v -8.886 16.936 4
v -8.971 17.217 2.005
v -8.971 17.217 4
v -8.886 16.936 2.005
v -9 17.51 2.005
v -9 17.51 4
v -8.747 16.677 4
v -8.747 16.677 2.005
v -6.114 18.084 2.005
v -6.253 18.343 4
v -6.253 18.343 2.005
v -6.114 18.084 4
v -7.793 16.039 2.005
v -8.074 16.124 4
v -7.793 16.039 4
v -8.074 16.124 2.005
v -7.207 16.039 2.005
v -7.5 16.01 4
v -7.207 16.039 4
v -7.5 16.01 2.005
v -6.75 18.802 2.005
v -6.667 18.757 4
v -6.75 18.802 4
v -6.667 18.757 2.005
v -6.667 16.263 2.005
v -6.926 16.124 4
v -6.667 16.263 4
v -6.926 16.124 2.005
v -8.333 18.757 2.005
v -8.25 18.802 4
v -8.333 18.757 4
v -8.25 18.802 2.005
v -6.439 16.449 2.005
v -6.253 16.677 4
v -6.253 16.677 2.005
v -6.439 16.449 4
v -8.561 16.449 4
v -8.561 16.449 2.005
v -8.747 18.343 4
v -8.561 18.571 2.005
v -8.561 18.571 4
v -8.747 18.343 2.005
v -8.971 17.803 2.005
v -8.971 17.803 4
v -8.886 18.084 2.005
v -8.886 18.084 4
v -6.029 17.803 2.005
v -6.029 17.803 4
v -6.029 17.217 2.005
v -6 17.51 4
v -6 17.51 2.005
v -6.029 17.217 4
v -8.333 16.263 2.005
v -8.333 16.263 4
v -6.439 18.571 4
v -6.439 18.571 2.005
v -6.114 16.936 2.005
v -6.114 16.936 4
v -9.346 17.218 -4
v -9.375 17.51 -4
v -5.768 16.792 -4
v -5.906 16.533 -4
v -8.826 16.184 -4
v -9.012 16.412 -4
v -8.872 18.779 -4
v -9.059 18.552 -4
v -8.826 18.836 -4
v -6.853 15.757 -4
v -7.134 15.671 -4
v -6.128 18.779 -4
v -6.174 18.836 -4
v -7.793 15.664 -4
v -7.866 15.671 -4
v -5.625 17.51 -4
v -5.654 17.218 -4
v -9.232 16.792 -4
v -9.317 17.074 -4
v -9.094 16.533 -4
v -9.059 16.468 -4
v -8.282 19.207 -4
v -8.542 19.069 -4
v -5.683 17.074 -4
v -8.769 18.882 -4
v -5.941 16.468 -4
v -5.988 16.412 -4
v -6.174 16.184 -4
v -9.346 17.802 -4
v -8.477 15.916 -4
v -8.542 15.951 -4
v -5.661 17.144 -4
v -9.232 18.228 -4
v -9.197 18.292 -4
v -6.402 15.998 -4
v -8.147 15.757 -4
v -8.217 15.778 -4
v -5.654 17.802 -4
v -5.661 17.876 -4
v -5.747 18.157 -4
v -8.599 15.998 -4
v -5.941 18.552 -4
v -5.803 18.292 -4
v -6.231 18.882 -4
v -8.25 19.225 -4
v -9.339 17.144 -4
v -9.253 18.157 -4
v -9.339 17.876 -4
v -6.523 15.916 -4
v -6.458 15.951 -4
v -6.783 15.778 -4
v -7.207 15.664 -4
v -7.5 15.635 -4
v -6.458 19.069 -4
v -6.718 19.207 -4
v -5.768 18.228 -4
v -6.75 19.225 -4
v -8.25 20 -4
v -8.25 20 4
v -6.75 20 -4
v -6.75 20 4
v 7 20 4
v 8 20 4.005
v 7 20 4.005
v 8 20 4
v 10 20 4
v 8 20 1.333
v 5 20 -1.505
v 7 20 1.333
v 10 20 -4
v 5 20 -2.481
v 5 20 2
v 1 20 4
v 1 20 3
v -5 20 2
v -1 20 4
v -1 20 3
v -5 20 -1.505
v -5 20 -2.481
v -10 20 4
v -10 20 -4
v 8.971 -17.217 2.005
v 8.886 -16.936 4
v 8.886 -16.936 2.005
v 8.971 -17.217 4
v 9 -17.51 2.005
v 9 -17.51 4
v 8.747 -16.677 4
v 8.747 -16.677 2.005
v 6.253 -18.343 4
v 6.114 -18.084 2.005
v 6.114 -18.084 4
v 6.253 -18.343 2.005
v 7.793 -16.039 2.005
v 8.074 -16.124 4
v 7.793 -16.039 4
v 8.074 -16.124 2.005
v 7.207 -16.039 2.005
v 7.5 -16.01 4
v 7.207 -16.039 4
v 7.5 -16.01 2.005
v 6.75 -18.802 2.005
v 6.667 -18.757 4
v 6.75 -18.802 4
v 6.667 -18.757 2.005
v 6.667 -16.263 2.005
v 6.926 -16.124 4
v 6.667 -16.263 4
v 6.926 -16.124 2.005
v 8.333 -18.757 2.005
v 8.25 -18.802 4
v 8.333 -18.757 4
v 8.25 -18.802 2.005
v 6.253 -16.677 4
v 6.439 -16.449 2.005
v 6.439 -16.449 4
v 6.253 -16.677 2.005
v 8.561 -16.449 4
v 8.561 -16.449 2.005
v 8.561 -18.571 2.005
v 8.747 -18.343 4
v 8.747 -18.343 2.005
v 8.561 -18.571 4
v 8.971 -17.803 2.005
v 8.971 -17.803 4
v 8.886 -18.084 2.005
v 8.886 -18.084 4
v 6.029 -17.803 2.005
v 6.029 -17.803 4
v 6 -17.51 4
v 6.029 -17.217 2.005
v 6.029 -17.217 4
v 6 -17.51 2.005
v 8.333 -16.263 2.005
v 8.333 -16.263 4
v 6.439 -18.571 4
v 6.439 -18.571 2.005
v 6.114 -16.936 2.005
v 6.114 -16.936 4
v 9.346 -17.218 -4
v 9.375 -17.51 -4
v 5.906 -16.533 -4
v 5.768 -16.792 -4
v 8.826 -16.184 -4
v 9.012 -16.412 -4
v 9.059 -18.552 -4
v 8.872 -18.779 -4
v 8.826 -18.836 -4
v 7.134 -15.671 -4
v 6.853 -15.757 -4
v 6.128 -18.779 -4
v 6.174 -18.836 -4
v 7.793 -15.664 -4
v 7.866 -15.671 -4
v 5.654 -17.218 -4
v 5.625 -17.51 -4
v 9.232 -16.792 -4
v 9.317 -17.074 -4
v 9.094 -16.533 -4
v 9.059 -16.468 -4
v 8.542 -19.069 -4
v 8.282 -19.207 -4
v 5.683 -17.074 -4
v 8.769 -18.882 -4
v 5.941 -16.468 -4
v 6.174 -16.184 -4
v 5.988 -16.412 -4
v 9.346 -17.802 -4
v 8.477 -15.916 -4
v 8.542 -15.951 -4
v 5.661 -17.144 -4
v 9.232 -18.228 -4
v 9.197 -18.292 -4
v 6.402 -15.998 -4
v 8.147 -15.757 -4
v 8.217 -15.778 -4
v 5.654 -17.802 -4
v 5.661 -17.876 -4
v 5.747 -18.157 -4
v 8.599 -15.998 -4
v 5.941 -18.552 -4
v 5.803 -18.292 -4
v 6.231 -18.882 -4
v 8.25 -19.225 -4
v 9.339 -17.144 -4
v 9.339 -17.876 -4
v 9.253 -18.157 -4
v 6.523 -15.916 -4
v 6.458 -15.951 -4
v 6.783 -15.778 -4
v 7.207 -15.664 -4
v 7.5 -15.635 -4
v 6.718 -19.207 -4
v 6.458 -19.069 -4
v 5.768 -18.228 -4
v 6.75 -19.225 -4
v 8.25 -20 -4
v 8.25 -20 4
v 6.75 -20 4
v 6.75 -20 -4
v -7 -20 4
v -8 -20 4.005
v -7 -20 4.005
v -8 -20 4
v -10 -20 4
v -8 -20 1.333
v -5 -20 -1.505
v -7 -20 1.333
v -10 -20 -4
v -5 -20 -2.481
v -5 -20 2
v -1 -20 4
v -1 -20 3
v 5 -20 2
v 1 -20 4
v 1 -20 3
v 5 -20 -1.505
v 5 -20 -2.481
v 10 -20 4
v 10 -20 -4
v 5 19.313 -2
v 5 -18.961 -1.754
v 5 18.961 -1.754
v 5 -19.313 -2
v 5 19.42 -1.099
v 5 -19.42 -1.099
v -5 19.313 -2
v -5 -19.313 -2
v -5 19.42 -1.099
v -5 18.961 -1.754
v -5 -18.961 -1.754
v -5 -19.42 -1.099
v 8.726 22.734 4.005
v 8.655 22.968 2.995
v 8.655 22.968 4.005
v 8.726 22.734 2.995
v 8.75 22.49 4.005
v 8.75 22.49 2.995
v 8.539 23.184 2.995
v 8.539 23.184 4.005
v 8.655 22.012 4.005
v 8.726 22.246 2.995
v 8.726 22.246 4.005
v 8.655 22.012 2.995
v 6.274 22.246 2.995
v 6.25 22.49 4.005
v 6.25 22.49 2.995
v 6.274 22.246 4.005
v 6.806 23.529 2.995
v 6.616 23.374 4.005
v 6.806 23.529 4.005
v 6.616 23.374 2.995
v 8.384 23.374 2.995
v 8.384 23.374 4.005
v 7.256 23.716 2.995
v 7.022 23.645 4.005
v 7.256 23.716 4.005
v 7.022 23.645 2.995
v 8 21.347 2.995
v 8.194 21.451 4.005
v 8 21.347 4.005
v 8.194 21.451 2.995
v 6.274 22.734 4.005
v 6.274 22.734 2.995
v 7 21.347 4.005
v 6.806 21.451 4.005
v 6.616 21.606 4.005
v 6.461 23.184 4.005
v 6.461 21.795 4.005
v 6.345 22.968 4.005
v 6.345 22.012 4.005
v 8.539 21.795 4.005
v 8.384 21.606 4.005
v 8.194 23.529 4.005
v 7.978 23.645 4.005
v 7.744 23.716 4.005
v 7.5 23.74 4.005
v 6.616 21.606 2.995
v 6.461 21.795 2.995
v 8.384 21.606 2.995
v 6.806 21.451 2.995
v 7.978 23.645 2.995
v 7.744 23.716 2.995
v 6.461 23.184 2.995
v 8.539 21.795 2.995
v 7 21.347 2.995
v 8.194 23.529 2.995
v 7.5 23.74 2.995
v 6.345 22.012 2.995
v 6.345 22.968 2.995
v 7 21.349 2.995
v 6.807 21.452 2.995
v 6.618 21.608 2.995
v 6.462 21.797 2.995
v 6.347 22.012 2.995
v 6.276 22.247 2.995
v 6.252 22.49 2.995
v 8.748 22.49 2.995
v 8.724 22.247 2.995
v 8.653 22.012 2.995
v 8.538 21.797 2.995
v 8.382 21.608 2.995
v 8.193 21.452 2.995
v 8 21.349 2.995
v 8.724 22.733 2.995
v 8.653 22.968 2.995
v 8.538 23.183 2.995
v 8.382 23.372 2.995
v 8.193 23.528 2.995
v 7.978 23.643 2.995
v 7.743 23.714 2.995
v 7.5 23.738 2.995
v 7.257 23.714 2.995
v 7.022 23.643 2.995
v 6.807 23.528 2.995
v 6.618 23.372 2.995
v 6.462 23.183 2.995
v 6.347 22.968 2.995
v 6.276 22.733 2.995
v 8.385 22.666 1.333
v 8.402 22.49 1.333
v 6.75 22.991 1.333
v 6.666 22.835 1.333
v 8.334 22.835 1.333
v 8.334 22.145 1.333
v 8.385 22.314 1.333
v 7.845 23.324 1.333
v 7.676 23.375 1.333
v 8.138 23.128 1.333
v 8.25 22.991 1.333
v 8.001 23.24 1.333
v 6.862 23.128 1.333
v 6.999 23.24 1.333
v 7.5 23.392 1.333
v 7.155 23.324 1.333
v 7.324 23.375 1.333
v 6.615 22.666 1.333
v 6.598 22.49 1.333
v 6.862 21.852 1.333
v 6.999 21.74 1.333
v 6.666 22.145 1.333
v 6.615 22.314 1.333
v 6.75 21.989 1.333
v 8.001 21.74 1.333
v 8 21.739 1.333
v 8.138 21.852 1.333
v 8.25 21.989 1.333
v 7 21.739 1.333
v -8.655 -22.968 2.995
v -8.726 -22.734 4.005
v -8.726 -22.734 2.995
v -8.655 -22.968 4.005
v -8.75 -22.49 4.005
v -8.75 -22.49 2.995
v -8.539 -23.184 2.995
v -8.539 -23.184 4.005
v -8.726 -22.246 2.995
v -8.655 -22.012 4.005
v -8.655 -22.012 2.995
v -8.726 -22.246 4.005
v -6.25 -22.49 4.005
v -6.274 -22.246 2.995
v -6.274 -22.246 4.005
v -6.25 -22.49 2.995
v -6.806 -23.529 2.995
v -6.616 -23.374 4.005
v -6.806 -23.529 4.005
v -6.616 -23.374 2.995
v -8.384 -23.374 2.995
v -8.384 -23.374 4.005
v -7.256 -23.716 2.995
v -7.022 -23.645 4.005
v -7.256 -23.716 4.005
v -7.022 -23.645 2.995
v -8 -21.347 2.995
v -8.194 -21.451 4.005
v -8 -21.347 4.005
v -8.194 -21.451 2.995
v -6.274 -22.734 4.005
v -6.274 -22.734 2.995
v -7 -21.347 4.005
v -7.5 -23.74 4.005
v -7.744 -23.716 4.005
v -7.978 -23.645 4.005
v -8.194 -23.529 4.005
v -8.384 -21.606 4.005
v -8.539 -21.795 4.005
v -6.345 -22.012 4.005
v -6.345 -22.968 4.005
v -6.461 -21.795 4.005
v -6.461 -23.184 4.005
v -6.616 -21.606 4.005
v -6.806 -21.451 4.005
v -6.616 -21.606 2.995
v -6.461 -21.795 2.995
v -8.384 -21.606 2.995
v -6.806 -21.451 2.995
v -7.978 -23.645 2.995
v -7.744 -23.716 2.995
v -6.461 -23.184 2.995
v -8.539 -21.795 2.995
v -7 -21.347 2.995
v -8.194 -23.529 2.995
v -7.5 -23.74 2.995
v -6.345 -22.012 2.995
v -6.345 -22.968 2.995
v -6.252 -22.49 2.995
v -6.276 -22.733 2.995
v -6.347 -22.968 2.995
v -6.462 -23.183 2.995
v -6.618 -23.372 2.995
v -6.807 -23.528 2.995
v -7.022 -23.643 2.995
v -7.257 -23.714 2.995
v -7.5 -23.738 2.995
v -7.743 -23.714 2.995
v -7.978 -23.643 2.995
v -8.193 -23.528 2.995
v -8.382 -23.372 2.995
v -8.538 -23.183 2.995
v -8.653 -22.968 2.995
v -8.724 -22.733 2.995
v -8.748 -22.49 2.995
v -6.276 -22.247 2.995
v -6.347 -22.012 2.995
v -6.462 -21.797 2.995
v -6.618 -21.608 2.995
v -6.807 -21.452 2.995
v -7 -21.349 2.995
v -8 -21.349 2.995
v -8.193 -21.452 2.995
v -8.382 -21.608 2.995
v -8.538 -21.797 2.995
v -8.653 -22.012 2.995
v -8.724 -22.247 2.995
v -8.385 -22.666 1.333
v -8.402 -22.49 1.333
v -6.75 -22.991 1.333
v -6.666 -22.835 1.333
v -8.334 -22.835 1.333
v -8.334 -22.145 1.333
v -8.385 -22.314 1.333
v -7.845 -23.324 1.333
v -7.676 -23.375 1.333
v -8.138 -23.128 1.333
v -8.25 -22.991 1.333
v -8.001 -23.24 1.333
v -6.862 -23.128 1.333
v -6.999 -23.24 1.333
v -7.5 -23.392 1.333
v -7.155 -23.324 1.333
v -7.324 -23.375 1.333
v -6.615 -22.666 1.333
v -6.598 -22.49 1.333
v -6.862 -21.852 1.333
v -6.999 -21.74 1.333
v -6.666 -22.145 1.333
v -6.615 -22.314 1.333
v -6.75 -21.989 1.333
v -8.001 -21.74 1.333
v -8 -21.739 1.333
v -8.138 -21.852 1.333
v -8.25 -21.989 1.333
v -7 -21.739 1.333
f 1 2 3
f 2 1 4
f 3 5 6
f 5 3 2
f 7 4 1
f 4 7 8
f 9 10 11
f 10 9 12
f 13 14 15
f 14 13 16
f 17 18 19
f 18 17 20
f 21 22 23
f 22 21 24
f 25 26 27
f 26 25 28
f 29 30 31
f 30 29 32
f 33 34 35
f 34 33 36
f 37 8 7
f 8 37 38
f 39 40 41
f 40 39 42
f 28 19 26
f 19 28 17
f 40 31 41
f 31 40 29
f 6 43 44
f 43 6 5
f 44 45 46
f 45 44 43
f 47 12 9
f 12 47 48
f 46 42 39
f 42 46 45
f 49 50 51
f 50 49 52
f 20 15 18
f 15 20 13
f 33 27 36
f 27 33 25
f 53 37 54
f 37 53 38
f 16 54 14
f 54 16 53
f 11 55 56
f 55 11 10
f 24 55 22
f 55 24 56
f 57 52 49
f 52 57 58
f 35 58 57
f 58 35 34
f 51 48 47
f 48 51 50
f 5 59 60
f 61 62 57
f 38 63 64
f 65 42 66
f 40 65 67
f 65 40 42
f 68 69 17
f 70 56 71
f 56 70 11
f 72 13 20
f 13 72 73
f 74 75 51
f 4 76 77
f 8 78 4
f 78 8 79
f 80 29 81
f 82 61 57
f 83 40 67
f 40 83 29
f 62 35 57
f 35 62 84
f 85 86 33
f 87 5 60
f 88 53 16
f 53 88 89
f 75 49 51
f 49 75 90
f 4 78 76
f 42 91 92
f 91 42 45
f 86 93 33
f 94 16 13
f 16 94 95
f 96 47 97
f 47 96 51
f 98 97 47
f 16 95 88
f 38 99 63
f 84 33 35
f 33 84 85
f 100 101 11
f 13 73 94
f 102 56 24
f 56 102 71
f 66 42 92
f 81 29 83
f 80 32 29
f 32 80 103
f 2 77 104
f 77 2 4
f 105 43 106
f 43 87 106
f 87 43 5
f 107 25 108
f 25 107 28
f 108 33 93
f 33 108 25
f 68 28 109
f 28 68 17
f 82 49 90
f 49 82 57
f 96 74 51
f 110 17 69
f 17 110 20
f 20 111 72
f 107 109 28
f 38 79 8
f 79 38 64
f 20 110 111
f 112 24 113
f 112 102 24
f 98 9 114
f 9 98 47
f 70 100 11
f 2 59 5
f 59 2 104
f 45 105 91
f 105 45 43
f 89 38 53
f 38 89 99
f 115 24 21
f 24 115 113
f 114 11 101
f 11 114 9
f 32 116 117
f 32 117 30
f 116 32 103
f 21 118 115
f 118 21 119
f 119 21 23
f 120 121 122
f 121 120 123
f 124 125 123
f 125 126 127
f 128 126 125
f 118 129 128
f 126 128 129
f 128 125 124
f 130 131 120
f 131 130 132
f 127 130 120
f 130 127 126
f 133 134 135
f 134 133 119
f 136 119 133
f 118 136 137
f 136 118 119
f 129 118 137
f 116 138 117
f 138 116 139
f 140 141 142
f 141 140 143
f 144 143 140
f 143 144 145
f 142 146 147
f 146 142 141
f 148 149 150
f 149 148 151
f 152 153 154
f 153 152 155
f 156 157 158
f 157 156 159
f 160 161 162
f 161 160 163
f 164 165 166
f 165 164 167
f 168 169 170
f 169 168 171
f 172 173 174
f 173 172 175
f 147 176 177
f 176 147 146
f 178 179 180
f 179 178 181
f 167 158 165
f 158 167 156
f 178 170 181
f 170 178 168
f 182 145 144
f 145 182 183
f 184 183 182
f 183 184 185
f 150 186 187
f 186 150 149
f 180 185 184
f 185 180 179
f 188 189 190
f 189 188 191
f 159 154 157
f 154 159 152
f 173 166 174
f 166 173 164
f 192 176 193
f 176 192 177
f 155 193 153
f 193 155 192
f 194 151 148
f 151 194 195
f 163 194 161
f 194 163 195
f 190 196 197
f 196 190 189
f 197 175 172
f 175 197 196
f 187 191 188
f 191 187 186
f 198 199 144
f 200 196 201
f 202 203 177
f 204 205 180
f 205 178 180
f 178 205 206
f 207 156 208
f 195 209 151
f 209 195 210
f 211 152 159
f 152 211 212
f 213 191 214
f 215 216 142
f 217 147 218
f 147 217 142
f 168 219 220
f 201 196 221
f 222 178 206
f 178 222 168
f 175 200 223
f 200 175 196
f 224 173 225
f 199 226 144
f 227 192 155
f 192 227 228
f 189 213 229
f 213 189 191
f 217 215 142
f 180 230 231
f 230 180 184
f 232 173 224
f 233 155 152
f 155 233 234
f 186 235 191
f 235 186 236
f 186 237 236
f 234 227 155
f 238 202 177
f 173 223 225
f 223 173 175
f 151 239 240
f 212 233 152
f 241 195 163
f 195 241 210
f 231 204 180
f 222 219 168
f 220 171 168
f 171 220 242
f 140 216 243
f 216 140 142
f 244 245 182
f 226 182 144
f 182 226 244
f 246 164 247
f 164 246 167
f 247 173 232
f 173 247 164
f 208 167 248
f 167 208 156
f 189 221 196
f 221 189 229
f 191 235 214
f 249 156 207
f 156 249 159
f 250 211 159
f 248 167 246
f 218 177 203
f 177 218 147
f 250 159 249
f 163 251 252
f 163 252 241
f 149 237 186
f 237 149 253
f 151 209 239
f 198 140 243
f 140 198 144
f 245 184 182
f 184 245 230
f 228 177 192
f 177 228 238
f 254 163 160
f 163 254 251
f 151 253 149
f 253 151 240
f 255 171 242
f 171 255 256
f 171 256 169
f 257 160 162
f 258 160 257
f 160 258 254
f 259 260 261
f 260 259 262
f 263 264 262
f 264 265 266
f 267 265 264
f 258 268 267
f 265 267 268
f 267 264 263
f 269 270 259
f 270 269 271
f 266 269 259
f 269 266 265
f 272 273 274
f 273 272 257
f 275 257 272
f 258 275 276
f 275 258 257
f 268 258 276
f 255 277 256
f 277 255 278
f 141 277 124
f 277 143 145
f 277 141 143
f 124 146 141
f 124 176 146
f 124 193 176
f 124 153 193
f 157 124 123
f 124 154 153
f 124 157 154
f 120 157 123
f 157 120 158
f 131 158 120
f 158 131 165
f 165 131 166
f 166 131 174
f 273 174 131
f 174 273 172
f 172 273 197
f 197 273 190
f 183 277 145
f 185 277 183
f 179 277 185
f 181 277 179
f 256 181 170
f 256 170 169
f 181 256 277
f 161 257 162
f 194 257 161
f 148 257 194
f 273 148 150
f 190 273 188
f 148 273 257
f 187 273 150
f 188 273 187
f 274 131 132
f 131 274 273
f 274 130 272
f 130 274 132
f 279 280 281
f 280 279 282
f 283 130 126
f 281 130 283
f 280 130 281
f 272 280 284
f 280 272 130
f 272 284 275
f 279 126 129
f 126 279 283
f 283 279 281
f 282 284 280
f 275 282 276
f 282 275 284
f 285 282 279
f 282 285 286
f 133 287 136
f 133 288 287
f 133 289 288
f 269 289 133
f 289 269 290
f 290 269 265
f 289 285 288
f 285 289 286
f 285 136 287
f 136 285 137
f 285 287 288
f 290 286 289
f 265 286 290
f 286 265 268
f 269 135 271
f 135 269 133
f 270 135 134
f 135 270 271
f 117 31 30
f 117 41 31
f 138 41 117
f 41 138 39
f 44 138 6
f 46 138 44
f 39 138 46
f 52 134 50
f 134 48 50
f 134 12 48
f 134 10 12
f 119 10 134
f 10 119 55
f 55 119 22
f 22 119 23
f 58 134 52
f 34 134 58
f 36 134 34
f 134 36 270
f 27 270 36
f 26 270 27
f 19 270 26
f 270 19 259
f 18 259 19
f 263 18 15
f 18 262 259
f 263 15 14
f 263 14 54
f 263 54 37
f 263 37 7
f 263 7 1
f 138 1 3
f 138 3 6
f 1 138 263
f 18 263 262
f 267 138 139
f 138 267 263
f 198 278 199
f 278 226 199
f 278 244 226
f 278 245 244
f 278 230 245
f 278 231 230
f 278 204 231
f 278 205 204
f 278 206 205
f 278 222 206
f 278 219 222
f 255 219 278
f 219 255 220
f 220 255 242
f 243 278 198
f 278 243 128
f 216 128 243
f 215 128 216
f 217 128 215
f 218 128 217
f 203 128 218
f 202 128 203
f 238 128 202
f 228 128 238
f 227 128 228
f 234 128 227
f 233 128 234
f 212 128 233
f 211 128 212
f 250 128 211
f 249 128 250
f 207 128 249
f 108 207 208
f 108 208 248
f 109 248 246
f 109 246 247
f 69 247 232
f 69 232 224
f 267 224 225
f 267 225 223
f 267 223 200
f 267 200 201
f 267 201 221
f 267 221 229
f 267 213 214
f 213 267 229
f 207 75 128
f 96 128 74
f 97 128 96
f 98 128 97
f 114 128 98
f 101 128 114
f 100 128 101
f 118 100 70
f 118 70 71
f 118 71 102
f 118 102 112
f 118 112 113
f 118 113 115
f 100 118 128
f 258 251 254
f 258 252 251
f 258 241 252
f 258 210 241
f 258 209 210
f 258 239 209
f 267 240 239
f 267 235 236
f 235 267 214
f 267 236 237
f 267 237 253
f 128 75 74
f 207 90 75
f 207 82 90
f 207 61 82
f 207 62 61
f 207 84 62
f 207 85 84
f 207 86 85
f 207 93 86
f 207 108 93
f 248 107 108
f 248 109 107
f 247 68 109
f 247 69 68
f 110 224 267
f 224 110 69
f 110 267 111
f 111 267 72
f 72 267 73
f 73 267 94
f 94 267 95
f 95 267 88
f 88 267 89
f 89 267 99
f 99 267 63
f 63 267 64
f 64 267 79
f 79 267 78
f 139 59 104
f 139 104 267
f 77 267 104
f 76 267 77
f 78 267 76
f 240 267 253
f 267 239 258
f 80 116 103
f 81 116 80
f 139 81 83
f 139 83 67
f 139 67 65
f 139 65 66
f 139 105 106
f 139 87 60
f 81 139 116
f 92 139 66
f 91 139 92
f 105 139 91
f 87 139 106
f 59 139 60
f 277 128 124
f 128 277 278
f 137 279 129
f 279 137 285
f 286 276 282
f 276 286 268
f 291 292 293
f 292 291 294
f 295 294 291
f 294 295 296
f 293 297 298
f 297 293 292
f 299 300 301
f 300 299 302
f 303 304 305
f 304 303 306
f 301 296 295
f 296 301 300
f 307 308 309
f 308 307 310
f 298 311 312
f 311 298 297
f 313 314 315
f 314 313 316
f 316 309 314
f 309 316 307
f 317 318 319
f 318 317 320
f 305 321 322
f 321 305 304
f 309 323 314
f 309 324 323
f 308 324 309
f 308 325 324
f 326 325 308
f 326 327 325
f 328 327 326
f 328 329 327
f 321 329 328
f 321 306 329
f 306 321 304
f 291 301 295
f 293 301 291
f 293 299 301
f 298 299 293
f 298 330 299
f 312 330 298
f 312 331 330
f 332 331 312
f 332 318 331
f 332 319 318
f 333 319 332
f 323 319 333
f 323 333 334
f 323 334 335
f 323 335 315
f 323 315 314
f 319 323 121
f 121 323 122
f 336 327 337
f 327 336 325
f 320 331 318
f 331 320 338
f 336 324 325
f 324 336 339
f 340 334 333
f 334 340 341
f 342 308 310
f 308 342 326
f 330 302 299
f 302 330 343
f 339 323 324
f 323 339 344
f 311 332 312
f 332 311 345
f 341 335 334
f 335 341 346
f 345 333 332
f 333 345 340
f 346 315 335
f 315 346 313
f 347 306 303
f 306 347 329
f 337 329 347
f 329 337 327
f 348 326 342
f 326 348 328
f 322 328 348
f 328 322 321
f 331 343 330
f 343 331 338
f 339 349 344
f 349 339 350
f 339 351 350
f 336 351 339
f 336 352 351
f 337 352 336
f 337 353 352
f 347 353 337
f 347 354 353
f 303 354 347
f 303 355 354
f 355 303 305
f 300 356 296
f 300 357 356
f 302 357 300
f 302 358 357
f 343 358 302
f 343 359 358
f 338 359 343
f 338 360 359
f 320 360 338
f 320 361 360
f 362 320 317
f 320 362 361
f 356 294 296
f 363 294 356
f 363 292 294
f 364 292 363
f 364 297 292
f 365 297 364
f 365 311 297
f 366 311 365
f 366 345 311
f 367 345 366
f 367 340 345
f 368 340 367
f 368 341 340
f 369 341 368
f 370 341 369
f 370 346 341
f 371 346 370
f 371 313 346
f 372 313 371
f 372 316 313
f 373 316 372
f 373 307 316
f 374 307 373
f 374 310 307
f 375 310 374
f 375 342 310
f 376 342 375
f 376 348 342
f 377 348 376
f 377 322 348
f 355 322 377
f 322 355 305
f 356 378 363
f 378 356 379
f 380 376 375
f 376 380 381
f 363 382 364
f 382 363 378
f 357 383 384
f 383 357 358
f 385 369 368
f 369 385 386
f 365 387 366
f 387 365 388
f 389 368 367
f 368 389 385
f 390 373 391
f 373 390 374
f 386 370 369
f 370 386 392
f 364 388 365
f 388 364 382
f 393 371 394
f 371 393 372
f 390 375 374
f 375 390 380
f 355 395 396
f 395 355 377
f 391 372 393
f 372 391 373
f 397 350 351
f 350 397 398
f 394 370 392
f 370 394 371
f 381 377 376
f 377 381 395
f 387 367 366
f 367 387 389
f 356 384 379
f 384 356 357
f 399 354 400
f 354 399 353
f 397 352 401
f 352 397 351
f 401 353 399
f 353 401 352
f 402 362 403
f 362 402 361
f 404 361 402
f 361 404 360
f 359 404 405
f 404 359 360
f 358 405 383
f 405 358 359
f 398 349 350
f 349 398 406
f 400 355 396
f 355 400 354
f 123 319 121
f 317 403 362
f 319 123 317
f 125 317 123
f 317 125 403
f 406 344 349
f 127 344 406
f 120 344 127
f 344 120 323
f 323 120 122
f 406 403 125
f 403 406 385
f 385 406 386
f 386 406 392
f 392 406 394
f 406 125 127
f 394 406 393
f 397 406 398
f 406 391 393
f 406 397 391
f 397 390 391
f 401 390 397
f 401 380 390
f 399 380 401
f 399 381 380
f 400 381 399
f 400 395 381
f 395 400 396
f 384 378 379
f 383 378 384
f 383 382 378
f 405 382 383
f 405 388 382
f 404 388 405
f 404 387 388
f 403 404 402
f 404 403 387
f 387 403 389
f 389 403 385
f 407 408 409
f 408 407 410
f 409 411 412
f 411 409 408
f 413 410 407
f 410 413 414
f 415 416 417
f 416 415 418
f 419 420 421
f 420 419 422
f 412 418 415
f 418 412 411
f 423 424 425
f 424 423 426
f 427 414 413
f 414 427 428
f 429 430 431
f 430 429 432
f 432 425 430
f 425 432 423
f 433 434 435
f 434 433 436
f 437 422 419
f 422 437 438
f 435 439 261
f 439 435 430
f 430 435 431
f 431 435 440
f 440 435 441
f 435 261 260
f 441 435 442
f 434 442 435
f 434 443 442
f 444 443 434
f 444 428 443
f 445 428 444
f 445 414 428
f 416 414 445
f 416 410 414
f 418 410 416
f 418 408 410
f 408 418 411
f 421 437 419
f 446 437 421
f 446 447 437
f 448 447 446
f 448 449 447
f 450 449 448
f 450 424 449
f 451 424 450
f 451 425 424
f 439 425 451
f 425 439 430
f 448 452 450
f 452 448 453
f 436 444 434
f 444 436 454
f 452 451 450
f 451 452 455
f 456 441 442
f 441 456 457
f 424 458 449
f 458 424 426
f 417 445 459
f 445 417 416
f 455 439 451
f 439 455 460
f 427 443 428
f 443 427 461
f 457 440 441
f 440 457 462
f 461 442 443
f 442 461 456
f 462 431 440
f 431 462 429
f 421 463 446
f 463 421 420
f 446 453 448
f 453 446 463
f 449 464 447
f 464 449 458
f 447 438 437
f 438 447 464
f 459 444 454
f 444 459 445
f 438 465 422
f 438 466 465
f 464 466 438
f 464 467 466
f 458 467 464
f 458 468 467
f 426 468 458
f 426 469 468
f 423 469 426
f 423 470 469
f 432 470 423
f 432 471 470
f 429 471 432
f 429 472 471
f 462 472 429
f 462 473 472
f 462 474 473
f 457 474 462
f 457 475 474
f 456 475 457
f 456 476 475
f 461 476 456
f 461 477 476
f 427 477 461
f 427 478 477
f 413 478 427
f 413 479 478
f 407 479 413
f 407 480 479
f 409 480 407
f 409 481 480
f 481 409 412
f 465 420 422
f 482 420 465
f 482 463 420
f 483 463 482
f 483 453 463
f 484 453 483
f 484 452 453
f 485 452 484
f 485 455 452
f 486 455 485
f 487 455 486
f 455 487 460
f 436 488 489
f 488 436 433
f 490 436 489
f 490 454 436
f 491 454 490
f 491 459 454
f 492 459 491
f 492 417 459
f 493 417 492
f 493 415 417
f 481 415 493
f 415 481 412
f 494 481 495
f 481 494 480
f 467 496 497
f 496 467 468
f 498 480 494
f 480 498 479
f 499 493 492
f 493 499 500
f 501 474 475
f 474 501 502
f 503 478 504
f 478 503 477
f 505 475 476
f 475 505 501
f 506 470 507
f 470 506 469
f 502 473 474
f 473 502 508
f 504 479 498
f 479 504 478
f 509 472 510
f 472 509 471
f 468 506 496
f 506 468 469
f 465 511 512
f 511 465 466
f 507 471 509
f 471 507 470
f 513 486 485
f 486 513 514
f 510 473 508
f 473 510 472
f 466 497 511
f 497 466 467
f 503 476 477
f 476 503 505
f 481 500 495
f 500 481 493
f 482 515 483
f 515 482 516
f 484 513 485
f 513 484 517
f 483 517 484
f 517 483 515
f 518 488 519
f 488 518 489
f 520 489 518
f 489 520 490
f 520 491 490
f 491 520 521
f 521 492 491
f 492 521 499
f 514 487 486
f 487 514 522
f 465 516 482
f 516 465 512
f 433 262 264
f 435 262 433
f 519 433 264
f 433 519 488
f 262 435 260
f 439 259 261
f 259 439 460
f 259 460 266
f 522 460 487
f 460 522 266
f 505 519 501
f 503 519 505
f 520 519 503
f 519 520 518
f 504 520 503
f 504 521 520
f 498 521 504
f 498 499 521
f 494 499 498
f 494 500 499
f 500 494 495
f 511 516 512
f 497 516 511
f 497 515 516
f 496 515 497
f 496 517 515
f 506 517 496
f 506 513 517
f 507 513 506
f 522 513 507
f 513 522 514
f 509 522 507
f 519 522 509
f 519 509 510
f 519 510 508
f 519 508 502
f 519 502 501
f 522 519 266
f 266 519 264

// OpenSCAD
/*
    straight one grid tile train tube track
*/
include <train_tube_track.scad>;

straight_track_double_plug(grid, is_base = false);

//base_grid(2*grid);
